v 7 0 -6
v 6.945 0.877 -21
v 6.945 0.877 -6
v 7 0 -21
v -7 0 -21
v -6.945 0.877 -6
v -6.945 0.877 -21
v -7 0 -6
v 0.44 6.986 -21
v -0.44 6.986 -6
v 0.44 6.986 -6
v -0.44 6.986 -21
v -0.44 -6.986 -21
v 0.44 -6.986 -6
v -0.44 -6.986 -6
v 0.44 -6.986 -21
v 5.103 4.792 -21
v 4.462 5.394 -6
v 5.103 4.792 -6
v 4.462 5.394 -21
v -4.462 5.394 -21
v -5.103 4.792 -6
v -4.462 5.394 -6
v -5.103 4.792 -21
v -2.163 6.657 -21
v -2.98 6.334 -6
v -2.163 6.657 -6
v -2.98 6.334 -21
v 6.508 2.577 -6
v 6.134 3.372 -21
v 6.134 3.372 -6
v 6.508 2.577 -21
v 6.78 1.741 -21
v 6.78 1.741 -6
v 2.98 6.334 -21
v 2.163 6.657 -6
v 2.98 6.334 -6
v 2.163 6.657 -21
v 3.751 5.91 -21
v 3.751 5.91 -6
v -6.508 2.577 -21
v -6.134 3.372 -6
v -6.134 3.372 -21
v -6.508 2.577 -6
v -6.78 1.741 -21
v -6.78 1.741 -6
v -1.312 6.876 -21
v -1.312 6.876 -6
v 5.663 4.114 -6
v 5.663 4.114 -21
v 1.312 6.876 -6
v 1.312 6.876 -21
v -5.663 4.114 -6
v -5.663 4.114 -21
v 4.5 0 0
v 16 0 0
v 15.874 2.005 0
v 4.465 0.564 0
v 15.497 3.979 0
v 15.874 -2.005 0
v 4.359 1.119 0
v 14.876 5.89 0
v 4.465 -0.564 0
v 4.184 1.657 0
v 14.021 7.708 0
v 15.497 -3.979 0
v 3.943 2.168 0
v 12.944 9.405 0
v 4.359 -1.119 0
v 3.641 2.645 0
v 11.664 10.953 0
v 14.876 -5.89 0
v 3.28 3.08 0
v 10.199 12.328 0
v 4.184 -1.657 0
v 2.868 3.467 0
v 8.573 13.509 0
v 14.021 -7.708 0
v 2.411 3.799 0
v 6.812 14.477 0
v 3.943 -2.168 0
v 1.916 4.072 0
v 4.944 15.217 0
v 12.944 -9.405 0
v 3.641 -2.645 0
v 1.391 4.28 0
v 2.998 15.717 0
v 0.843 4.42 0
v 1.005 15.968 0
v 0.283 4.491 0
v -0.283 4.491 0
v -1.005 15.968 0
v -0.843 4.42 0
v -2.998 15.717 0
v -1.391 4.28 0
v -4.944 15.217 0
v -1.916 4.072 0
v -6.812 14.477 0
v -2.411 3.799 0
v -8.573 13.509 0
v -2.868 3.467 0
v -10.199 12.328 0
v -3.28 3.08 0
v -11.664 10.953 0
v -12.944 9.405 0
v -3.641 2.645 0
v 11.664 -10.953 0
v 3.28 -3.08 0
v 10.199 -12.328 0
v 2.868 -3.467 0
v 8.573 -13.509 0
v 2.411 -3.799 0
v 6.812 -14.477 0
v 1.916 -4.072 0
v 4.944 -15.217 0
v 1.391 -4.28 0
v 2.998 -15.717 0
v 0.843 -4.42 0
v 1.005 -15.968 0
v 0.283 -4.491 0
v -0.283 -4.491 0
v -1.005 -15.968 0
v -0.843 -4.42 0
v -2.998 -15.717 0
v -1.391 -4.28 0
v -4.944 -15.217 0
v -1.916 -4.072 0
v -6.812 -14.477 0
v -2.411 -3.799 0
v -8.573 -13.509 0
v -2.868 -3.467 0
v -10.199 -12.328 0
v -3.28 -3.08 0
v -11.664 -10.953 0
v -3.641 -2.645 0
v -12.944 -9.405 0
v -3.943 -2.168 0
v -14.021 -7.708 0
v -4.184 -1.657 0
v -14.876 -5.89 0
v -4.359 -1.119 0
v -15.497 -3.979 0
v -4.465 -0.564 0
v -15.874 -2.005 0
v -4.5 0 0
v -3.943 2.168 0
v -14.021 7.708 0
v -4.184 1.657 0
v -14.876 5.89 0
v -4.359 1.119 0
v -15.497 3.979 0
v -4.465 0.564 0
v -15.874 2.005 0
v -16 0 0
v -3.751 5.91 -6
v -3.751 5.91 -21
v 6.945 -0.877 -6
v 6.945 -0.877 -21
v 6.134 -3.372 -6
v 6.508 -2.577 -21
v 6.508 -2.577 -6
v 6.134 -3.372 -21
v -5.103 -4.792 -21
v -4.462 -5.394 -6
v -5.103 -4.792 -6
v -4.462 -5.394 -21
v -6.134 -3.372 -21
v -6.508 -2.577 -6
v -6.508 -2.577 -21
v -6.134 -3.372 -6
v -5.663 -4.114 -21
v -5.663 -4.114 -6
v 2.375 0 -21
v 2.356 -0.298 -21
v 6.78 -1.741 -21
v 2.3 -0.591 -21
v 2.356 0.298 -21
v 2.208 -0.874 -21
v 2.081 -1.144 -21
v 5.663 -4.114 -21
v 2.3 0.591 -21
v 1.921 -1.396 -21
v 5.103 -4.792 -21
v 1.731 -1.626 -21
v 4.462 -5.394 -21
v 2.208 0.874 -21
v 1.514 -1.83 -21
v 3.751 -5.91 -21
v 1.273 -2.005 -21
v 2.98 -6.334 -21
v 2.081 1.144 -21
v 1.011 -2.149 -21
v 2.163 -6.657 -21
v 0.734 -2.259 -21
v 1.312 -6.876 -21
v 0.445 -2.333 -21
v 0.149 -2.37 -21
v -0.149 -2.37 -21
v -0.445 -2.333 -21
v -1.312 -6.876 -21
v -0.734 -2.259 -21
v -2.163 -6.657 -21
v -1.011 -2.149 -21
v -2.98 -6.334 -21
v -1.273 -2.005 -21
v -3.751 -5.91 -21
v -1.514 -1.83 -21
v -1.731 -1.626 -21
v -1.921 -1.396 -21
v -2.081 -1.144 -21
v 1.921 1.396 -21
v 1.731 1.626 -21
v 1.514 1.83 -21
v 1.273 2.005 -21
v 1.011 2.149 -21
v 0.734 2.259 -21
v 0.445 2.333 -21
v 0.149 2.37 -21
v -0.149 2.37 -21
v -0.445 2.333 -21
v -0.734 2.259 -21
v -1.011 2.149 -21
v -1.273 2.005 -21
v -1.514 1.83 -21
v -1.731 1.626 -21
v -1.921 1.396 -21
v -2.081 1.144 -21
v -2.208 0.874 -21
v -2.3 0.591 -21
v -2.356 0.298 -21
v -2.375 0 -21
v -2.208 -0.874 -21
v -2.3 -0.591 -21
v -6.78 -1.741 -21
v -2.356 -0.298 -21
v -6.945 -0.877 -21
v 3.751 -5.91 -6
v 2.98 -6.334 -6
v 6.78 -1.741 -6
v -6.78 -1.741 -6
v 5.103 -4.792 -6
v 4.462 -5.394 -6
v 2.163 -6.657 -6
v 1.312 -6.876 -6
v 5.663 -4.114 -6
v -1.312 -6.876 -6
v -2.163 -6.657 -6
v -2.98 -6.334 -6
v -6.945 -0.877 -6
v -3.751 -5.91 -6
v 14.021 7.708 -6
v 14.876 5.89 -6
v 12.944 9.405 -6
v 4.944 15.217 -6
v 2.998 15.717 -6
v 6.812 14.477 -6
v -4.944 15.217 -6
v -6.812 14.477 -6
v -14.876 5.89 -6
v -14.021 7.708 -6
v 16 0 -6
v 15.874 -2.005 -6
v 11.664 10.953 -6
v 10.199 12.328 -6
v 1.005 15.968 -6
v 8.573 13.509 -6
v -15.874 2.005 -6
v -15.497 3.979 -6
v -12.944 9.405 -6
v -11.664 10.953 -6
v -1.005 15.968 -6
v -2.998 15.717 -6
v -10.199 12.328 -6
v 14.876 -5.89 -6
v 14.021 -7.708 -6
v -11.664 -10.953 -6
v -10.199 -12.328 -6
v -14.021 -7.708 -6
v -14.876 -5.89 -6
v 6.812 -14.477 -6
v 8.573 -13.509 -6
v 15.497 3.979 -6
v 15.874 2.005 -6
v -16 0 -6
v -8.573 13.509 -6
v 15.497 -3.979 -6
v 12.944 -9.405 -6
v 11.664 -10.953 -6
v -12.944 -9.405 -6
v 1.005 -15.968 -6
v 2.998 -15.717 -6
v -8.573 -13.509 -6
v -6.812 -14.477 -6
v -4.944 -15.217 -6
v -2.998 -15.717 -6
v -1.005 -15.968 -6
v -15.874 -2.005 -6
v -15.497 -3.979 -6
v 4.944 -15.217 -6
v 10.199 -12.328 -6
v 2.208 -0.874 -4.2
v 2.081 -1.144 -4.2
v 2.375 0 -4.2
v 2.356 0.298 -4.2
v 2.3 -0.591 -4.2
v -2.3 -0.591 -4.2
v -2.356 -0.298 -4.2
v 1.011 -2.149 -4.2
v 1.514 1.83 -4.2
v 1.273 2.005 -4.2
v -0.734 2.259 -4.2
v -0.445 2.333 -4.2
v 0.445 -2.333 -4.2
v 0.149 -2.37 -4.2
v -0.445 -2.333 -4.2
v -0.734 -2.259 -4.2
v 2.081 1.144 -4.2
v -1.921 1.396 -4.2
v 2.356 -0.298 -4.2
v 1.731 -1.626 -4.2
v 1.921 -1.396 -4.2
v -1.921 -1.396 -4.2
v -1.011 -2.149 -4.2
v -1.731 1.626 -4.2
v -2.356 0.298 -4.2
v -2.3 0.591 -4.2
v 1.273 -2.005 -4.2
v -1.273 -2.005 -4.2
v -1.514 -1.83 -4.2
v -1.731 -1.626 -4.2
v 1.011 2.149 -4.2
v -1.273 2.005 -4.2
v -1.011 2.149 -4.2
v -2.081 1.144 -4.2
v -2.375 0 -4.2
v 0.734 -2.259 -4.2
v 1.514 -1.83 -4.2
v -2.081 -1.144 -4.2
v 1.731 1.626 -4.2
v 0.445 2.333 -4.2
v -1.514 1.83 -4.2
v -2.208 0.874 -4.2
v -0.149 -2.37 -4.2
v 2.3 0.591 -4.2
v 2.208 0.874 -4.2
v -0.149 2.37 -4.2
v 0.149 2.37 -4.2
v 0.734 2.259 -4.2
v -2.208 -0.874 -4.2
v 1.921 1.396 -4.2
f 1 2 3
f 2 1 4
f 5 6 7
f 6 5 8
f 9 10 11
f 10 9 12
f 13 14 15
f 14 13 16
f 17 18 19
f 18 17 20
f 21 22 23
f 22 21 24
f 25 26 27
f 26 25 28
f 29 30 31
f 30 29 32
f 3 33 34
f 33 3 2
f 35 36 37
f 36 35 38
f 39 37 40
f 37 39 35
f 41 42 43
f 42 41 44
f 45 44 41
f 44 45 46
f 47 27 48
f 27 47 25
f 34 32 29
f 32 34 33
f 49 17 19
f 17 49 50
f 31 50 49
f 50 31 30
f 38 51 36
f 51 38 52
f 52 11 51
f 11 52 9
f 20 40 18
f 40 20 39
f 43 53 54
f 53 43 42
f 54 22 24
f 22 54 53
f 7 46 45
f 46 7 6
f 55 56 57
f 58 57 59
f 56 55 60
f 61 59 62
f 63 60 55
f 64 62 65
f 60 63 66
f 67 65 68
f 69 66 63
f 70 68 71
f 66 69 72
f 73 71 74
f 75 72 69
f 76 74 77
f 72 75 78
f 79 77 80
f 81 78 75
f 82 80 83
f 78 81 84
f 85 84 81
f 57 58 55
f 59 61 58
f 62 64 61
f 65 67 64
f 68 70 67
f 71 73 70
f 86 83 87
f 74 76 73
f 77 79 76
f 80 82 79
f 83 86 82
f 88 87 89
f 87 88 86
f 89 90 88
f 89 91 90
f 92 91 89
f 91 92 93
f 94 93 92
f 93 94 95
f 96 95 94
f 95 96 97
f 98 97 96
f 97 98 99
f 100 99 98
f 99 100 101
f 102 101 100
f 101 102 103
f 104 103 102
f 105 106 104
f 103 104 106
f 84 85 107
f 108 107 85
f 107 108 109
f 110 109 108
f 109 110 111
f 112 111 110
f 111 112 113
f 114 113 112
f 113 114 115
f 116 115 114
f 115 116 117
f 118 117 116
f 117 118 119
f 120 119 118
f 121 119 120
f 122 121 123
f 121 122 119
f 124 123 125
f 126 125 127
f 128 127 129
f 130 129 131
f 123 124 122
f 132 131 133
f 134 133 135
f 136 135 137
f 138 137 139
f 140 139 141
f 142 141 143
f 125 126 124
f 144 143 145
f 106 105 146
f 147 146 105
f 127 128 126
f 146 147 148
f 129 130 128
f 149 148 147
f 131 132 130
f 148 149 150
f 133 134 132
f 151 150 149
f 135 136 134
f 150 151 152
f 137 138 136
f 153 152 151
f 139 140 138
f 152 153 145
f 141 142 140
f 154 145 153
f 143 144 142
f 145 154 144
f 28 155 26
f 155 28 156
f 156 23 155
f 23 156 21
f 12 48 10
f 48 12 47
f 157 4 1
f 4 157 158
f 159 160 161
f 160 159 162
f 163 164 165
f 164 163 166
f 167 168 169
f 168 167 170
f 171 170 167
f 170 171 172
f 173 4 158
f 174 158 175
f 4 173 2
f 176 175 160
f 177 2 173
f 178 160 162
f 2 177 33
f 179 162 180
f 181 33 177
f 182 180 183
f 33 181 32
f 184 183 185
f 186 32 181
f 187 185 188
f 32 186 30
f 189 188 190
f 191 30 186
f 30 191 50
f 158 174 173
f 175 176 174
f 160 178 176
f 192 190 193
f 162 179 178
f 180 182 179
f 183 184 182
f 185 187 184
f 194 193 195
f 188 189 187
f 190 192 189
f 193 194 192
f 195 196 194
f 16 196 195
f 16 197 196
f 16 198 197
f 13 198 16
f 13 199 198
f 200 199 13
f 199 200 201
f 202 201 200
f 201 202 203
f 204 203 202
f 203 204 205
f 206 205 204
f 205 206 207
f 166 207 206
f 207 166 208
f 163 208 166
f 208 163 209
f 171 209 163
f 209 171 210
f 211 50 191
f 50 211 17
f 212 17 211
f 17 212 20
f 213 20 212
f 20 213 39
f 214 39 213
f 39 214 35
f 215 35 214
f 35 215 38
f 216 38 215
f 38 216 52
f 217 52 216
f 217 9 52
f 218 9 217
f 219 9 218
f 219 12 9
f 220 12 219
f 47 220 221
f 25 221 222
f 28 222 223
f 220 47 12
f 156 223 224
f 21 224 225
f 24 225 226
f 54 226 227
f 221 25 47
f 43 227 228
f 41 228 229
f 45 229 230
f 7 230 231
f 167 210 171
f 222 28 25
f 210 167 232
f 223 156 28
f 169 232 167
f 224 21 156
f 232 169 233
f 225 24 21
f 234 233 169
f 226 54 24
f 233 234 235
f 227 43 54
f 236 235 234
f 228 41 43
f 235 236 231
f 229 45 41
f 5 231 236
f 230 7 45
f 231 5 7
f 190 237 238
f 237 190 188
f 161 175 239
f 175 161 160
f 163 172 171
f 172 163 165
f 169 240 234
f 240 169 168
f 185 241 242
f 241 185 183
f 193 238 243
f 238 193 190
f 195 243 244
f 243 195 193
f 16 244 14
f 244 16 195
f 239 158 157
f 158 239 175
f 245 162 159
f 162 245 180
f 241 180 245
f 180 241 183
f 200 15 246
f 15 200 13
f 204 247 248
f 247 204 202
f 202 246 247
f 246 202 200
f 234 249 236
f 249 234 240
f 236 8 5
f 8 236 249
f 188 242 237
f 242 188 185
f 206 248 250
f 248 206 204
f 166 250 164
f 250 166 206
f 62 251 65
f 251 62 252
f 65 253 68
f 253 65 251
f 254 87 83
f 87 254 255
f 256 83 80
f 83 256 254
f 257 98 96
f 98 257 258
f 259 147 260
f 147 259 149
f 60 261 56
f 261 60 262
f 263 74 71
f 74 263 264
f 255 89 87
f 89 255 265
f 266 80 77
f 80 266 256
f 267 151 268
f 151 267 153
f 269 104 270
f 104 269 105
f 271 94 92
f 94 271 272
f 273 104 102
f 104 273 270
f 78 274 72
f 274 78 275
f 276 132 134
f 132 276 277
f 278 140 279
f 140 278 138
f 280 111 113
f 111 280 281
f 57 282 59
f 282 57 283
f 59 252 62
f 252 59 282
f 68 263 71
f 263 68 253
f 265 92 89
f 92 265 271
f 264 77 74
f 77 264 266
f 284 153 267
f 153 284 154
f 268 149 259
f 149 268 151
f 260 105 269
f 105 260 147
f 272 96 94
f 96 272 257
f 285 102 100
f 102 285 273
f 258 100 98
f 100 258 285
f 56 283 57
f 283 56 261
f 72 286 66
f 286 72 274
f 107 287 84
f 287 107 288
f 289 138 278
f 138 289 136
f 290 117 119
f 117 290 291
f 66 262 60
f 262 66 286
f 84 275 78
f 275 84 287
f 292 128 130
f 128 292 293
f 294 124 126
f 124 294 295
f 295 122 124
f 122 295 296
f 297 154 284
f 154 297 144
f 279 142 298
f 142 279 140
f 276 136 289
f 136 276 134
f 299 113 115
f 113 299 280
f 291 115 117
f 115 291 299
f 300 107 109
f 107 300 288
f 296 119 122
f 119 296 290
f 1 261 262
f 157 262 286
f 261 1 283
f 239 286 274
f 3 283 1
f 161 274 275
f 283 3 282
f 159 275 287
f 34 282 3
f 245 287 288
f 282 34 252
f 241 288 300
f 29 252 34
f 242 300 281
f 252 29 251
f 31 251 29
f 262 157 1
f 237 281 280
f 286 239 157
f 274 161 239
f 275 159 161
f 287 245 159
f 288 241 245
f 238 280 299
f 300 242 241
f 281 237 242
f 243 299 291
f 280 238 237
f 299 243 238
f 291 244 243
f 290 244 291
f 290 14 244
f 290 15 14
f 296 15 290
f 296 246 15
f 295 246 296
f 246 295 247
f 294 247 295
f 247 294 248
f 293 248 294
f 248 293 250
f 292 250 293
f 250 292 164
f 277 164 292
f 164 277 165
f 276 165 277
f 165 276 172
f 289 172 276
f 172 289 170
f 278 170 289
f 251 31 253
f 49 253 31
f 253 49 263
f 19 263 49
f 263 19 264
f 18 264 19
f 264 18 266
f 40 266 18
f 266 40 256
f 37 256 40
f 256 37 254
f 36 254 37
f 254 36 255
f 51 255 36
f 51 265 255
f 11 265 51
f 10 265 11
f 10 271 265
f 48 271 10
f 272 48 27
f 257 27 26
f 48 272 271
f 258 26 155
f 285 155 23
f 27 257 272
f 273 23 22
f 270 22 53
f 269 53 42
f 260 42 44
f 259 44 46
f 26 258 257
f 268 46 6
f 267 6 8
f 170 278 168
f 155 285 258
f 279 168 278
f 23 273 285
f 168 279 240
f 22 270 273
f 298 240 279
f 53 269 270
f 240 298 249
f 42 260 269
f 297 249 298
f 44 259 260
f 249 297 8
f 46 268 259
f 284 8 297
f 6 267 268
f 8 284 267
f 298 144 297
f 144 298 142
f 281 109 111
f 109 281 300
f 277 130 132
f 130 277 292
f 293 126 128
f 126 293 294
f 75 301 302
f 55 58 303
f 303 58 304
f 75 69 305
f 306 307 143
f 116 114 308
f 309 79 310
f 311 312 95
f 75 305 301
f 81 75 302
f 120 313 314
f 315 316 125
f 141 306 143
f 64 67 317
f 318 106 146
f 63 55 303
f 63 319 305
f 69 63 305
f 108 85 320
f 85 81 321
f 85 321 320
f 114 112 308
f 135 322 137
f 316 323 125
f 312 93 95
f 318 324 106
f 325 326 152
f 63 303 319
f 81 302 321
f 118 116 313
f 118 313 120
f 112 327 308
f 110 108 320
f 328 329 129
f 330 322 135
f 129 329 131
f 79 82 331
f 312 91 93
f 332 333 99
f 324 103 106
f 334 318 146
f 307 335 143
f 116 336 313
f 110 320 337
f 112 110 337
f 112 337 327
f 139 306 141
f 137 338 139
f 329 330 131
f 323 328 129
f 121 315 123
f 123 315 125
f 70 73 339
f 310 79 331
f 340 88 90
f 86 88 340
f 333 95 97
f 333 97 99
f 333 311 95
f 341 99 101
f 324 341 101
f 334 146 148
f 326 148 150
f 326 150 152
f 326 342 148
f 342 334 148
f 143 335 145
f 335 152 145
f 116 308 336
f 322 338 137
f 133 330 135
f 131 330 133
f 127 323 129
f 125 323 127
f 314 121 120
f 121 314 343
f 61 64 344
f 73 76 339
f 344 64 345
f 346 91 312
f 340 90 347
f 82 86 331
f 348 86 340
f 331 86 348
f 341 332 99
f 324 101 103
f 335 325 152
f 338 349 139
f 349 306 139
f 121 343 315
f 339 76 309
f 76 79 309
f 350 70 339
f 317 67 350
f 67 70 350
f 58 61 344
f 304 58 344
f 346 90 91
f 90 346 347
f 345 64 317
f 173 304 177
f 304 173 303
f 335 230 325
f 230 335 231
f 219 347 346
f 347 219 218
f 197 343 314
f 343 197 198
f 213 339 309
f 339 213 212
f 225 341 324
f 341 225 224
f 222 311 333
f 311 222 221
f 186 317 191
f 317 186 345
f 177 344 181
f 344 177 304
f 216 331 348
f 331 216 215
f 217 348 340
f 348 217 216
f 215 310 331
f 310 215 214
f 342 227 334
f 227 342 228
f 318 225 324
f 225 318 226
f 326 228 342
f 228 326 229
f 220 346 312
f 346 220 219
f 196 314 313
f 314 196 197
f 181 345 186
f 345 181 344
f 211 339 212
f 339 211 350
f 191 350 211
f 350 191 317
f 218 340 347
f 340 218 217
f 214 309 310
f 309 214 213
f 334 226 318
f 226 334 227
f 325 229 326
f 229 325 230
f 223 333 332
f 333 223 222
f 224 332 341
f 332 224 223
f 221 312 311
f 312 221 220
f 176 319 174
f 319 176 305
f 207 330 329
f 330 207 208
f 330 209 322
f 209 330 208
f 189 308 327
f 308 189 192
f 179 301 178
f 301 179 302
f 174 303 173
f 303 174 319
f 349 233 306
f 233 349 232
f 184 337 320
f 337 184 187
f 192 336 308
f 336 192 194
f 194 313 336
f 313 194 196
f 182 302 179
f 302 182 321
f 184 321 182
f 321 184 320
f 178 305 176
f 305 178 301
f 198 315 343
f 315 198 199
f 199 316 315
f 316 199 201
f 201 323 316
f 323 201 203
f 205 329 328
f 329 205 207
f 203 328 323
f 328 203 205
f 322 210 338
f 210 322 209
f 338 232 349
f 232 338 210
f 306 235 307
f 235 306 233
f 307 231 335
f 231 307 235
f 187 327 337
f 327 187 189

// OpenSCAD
$fn = 50;


difference() {
	union() {
		translate(v = [0, 0, -21.0000000000]) {
			cylinder(h = 21, r = 7.0000000000);
		}
		translate(v = [0, 0, -6.0000000000]) {
			cylinder(h = 6, r = 16.0000000000);
		}
	}
	union() {
		translate(v = [0, 0, 0]) {
			rotate(a = [0, 0, 0]) {
				difference() {
					union() {
						#translate(v = [0, 0, -21.0000000000]) {
							cylinder(h = 21, r = 2.2500000000);
						}
						#translate(v = [0, 0, -4.2000000000]) {
							cylinder(h = 4.2000000000, r = 7.0000000000, r1 = 2.3750000000, r2 = 4.5000000000);
						}
						#translate(v = [0, 0, -21.0000000000]) {
							cylinder(h = 21, r = 2.3750000000);
						}
						#translate(v = [0, 0, -21.0000000000]) {
							cylinder(h = 21, r = 2.2500000000);
						}
					}
					union();
				}
			}
		}
	}
}
